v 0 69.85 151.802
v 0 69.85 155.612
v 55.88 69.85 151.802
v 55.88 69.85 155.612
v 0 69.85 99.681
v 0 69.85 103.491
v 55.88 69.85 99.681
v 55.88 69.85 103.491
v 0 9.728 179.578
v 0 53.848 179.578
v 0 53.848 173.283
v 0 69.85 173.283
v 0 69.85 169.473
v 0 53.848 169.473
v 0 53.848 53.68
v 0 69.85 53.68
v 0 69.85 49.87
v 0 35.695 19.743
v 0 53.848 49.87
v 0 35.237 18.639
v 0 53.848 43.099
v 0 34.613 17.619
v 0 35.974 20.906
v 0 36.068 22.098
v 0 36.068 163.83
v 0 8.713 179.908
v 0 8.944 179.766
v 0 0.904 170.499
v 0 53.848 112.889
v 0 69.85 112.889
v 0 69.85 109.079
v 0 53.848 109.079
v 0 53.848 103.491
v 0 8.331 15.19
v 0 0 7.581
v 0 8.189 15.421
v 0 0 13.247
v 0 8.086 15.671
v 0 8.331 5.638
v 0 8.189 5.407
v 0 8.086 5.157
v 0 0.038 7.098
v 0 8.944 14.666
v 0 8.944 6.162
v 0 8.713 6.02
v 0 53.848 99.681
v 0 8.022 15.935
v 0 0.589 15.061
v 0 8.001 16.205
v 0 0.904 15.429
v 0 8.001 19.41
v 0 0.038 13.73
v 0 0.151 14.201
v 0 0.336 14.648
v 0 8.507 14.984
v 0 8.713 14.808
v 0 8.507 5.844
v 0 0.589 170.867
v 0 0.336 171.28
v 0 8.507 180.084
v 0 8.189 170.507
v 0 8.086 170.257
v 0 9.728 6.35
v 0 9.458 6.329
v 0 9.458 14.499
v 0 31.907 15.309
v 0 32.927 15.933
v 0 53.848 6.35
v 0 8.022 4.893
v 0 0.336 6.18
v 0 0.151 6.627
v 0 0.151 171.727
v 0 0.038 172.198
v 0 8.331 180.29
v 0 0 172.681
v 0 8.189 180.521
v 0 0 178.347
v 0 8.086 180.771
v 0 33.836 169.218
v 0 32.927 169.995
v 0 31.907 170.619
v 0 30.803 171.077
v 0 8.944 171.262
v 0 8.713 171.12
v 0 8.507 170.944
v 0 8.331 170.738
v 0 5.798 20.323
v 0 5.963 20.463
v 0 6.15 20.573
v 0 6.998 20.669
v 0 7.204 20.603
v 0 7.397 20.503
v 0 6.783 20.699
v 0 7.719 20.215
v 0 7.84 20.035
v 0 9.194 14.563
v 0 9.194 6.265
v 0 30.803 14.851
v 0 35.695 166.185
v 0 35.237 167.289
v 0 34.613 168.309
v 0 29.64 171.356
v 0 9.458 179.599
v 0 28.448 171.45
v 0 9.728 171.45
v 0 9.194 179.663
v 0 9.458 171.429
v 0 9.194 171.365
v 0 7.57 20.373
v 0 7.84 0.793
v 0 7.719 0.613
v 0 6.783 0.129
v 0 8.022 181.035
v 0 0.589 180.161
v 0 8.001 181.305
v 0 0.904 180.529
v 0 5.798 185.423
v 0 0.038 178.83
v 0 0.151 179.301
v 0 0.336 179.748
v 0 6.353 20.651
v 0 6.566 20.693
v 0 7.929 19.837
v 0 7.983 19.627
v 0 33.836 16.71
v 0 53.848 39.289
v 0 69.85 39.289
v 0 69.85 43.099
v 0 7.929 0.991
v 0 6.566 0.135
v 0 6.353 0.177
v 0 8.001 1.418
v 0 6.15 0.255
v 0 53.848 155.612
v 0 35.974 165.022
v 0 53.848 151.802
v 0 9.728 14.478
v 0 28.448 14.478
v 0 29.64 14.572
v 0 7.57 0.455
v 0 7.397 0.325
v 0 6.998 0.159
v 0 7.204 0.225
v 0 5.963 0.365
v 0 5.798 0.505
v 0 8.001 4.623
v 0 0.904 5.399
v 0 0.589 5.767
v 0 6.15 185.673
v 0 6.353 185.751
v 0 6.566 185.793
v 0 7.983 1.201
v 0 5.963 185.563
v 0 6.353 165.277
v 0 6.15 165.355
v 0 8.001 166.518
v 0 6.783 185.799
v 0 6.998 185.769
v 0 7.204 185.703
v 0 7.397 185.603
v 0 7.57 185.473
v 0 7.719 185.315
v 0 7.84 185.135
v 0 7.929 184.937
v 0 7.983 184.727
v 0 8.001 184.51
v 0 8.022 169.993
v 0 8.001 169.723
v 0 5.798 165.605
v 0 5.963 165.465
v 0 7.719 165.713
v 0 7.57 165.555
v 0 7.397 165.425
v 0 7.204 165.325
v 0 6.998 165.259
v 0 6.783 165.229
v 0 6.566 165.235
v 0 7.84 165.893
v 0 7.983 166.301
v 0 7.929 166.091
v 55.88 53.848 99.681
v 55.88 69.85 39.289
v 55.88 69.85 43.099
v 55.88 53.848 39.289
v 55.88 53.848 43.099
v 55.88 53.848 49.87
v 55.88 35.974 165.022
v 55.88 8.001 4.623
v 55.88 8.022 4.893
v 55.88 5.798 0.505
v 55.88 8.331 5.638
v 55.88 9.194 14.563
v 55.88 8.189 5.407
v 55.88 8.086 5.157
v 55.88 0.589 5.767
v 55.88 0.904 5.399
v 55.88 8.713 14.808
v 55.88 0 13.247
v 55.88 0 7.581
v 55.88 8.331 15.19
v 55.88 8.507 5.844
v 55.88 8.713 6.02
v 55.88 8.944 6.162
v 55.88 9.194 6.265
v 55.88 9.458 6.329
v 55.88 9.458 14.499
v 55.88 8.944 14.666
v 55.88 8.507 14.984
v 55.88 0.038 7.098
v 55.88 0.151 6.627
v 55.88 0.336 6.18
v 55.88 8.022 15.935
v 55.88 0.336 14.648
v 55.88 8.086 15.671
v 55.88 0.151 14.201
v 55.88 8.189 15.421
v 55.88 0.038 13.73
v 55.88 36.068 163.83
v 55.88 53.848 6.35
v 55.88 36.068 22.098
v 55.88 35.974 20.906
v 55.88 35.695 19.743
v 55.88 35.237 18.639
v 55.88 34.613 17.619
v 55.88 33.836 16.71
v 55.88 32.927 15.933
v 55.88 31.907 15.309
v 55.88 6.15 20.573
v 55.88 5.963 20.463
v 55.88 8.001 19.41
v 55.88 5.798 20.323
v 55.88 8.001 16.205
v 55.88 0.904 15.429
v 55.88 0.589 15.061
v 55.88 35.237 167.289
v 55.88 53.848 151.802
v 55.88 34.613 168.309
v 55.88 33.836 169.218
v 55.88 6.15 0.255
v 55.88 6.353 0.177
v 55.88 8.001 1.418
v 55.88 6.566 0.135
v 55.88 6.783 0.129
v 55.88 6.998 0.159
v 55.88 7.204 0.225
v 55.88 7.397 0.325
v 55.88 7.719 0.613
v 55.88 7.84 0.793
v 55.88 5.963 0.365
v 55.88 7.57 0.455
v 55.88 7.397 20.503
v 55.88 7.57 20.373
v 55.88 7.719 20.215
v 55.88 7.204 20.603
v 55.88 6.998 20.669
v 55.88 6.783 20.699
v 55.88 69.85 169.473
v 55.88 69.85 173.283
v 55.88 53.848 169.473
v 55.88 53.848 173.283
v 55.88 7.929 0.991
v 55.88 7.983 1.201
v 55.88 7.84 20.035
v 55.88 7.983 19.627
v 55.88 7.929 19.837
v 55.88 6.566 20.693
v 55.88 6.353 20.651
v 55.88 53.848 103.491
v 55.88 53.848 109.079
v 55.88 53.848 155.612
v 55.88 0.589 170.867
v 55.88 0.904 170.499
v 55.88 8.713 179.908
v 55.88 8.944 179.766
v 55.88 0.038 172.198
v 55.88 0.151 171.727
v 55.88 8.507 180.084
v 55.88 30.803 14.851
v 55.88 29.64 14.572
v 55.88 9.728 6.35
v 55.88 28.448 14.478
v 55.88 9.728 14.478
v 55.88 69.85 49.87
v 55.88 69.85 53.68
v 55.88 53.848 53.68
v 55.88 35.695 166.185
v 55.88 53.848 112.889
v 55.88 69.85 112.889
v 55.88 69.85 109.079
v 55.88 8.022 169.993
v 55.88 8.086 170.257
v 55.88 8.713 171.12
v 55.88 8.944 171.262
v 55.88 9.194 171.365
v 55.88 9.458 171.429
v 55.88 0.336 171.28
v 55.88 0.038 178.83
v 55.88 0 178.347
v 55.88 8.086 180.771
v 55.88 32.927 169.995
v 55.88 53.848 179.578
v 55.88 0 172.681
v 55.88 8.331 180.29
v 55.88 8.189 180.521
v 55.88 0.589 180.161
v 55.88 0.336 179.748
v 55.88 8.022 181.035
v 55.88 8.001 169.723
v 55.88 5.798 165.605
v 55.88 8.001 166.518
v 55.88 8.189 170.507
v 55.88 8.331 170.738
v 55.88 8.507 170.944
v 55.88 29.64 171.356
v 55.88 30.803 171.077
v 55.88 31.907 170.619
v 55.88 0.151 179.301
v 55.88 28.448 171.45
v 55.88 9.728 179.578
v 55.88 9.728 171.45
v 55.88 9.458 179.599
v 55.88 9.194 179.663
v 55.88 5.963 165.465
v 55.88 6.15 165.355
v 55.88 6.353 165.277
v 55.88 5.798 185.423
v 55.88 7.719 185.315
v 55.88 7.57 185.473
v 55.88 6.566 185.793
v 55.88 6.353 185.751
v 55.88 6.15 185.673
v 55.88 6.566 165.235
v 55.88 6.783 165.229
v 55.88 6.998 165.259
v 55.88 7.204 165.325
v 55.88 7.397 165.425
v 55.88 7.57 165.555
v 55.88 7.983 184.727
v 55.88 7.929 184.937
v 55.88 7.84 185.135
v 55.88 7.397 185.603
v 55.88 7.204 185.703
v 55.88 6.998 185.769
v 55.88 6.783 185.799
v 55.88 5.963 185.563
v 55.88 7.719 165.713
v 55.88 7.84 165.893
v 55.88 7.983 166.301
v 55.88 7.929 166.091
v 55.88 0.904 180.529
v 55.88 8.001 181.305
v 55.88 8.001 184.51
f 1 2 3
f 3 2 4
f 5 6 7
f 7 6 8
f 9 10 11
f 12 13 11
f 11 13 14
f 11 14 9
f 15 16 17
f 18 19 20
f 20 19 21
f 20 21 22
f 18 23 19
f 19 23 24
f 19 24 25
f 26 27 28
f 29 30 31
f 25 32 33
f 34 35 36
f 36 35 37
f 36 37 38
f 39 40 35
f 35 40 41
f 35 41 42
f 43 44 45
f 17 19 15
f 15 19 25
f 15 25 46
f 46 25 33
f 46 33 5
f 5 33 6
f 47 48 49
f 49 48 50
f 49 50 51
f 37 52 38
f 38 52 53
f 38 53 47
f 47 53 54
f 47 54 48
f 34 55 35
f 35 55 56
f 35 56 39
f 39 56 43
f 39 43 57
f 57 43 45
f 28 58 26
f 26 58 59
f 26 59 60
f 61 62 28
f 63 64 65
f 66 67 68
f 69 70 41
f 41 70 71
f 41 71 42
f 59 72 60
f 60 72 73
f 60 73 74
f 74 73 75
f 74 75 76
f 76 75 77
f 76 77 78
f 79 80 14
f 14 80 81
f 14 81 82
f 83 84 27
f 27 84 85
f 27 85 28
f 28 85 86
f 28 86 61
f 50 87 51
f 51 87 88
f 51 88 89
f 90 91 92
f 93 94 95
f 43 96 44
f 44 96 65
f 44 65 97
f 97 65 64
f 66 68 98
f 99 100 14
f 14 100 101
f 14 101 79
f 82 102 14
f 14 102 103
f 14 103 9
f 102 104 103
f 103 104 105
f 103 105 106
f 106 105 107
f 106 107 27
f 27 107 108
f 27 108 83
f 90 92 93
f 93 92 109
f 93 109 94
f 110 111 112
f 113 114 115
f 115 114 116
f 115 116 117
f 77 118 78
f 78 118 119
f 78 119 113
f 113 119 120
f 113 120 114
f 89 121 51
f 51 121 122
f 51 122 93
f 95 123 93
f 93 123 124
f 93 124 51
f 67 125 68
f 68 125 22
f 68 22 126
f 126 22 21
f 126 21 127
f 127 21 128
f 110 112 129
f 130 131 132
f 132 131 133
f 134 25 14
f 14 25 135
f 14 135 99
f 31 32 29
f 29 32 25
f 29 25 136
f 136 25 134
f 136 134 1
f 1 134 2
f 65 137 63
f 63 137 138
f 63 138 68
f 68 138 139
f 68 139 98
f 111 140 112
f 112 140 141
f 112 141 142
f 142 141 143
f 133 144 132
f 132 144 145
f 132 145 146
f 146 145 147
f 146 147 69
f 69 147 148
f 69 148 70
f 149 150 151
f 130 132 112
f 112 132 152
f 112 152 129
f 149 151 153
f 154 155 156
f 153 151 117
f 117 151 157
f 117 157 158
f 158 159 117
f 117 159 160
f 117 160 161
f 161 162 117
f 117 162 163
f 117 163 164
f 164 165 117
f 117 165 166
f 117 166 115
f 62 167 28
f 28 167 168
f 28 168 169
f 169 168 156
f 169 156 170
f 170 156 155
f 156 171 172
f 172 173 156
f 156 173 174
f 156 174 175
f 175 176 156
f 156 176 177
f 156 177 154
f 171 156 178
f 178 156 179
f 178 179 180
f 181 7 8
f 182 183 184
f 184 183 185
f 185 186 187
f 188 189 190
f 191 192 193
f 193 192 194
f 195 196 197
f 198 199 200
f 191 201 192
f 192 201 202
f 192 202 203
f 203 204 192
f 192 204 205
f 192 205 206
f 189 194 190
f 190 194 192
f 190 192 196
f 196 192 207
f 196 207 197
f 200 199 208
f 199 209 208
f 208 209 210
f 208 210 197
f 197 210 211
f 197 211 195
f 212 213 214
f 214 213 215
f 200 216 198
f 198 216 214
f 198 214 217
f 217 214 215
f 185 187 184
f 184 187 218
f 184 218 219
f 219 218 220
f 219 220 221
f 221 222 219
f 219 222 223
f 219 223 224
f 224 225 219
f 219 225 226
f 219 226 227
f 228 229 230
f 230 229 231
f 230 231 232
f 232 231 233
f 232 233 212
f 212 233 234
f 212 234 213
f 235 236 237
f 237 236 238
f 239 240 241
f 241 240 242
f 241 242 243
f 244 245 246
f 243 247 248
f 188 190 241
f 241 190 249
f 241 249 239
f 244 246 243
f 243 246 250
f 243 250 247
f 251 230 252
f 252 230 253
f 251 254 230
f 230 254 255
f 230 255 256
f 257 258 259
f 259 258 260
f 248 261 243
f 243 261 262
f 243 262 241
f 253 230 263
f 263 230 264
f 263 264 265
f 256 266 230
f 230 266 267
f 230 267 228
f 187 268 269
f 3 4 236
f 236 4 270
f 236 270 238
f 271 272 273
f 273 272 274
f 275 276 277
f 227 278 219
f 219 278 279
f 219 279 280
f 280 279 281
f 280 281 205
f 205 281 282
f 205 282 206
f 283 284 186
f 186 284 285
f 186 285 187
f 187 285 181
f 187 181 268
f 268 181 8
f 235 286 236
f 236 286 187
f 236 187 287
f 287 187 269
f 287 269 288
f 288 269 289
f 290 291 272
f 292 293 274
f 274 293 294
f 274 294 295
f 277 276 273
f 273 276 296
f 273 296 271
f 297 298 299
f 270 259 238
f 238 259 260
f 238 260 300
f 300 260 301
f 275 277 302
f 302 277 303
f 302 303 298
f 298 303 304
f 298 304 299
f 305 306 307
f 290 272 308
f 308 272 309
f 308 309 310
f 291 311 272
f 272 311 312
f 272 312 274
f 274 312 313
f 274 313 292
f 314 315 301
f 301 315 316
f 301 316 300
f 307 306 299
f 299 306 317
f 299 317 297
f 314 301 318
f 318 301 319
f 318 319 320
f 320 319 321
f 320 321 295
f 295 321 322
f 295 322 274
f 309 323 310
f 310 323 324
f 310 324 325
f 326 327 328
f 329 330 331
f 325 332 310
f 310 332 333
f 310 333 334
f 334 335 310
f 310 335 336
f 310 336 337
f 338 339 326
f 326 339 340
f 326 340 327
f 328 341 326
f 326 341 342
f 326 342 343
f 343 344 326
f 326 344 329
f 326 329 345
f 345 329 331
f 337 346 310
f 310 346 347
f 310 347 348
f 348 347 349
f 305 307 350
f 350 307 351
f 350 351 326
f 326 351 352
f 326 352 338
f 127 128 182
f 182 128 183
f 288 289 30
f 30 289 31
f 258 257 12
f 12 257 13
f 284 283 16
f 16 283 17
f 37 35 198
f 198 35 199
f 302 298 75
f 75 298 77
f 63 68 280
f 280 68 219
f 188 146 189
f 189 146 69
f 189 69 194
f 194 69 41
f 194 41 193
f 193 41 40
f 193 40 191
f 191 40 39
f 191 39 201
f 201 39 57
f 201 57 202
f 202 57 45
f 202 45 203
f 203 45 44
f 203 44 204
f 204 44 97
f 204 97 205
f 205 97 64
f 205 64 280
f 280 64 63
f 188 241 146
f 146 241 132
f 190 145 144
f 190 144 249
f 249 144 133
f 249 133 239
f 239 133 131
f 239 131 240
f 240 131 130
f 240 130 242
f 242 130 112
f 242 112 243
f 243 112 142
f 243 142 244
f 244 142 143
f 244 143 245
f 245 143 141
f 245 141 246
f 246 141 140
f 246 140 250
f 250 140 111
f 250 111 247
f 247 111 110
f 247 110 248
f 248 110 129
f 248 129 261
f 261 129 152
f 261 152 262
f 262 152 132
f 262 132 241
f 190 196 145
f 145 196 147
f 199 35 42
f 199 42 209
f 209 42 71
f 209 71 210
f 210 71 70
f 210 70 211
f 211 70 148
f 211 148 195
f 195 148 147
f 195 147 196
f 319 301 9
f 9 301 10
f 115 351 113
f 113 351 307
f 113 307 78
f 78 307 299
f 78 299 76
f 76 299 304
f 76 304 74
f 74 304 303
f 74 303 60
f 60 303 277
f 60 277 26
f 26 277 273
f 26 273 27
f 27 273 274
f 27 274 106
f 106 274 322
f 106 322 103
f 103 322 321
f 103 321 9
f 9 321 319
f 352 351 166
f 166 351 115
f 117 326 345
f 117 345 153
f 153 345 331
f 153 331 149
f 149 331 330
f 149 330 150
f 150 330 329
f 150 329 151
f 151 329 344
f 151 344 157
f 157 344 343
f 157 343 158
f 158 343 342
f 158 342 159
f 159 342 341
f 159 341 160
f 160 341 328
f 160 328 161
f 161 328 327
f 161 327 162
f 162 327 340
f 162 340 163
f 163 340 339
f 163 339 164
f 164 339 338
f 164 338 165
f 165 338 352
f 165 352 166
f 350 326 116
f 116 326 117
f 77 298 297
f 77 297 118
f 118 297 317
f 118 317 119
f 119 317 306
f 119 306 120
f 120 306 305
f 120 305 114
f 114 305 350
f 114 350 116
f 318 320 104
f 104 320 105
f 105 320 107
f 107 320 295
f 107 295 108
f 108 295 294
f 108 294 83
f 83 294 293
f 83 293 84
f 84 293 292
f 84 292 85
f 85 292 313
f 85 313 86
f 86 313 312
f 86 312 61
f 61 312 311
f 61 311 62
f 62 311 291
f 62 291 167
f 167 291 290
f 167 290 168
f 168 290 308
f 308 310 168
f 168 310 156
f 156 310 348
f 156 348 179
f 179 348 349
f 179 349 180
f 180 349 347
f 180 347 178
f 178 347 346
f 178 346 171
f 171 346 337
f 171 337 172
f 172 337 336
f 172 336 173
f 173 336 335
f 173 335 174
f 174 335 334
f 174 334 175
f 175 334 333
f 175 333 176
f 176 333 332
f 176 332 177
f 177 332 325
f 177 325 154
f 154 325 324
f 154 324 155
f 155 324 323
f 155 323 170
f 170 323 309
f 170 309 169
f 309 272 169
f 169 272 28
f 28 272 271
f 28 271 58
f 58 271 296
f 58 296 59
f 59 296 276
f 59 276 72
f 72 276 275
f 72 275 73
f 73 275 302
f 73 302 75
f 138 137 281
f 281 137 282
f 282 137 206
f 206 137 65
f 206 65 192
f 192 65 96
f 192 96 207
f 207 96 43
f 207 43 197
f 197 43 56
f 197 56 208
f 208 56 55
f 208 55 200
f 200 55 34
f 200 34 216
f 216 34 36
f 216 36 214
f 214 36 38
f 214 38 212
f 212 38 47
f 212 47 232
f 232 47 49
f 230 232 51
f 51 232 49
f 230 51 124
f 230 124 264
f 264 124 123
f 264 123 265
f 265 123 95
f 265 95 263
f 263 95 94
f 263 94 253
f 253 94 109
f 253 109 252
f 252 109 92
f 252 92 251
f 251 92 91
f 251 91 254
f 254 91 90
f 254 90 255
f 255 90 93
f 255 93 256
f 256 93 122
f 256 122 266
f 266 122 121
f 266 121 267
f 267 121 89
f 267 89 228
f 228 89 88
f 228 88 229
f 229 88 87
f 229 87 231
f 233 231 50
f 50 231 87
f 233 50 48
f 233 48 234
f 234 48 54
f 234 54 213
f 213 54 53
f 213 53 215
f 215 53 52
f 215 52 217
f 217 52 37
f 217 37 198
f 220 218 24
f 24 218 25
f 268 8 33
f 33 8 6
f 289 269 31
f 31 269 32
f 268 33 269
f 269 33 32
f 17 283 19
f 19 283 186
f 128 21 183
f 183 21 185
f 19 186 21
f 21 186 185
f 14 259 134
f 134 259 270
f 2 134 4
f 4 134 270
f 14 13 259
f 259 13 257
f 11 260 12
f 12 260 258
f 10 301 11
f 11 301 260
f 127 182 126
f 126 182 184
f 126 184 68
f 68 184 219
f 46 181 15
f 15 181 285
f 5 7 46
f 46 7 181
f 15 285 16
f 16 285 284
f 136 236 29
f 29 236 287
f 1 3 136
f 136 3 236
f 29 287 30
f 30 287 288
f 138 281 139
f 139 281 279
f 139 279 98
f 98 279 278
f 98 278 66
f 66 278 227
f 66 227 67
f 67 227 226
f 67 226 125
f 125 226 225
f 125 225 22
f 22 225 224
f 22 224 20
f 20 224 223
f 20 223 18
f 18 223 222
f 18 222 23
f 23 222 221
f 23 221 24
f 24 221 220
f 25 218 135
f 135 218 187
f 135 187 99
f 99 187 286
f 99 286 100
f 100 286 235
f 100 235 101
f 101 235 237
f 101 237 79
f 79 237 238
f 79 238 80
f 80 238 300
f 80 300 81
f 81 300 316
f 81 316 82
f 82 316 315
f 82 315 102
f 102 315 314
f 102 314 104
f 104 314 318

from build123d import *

# Parameters (mm, degrees)
SKETCH1_W               = 55.88
SKETCH1_H               = 69.85
BOSS_EXTRUDE1_DEPTH     = 185.928
CAVITY2_DEPTH           = 55.88
CUT_EXTRUDE1_DEPTH      = 207.326968872
CUT_EXTRUDE1_DEPTH_BACK = 207.326968872
CAVITY3_START           = 155.611951918
CAVITY3_OUTLINE_W       = 55.88
CAVITY3_OUTLINE_H       = 16.002
CAVITY3_DEPTH           = 13.861518057
CAVITY3_START_2         = 43.09882965
CAVITY3_2_OUTLINE_W     = 55.88
CAVITY3_2_OUTLINE_H     = 16.002
CAVITY3_2_DEPTH         = 6.77134799
CAVITY3_START_3         = 103.490840018
CAVITY3_3_OUTLINE_W     = 55.88
CAVITY3_3_OUTLINE_H     = 16.002
CAVITY3_3_DEPTH         = 5.588
CUT_EXTRUDE2_DEPTH      = 207.326968872
CUT_EXTRUDE2_DEPTH_BACK = 207.326968872
SKETCH4_W               = 12.644530025
SKETCH4_H               = 16.002
SKETCH4_W_2             = 38.9131119
SKETCH4_W_3             = 46.000662378
SKETCH4_W_4             = 39.28882965
FILLET1_R               = 7.62


# Read off the part's stored shape, not the designer's step: Cavity2, Cavity3
with BuildPart() as part:
    # Sketch1 → Boss-Extrude1 (new body)
    with BuildSketch(Plane.XY):
        with Locations((27.94, 34.925)):
            Rectangle(SKETCH1_W, SKETCH1_H)
    extrude(amount=BOSS_EXTRUDE1_DEPTH)

    # Cavity2 outline → Cavity2 (cut)
    with BuildSketch(Plane.YZ):
        with BuildLine():
            Line((0, 185.372681959), (0, 178.347013566))
            ThreePointArc((0, 178.347013566), (0.234915375, 179.528012907), (0.903897763, 180.529215804))
            Line((0.903897763, 180.529215804), (5.797646215, 185.422964256))
            ThreePointArc((5.797646215, 185.422964256), (7.204232738, 185.702751711), (8.001, 184.510305235))
            Line((8.001, 184.510305235), (8.001, 181.3052))
            ThreePointArc((8.001, 181.3052), (8.506885168, 180.083885168), (9.7282, 179.578))
            Line((9.7282, 179.578), (10.3378, 179.578))
            ThreePointArc((10.3378, 179.578), (11.559114832, 180.083885168), (12.065, 181.3052))
            Line((12.065, 181.3052), (12.065, 182.478305235))
            ThreePointArc((12.065, 182.478305235), (11.049, 183.494305235), (12.065, 184.510305235))
            Line((12.065, 184.510305235), (12.065, 185.928))
            Line((12.065, 185.928), (0.555318041, 185.928))
            Line((0.555318041, 185.928), (0, 185.372681959))
        make_face()
        with BuildLine():
            Line((0, 160.528), (0, 156.668018354))
            ThreePointArc((0, 156.668018354), (1.097837867, 157.474813069), (2.011305235, 156.464))
            Line((2.011305235, 156.464), (6.738477062, 156.464))
            ThreePointArc((6.738477062, 156.464), (7.643464695, 157.473916954), (8.74621772, 156.684695417))
            ThreePointArc((8.74621772, 156.684695417), (10.673815789, 157.855184211), (11.844304583, 159.78278228))
            ThreePointArc((11.844304583, 159.78278228), (11.055083046, 160.885535305), (12.065, 161.790522938))
            Line((12.065, 161.790522938), (12.065, 166.517694765))
            ThreePointArc((12.065, 166.517694765), (11.049, 167.533694765), (12.065, 168.549694765))
            Line((12.065, 168.549694765), (12.065, 169.7228))
            ThreePointArc((12.065, 169.7228), (11.559114832, 170.944114832), (10.3378, 171.45))
            Line((10.3378, 171.45), (9.7282, 171.45))
            ThreePointArc((9.7282, 171.45), (8.506885168, 170.944114832), (8.001, 169.7228))
            Line((8.001, 169.7228), (8.001, 166.517694765))
            ThreePointArc((8.001, 166.517694765), (7.204232738, 165.325248289), (5.797646215, 165.605035744))
            Line((5.797646215, 165.605035744), (0.903897763, 170.498784196))
            ThreePointArc((0.903897763, 170.498784196), (0.234915375, 171.499987093), (0, 172.680986434))
            Line((0, 172.680986434), (0, 165.655318041))
            Line((0, 165.655318041), (2.923964256, 162.731353785))
            ThreePointArc((2.923964256, 162.731353785), (3.203751711, 161.324767262), (2.011305235, 160.528))
            Line((2.011305235, 160.528), (0, 160.528))
        make_face()
        with BuildLine():
            Line((0, 20.272681959), (0, 13.247013566))
            ThreePointArc((0, 13.247013566), (0.234915375, 14.428012907), (0.903897763, 15.429215804))
            Line((0.903897763, 15.429215804), (5.797646215, 20.322964256))
            ThreePointArc((5.797646215, 20.322964256), (7.204232738, 20.602751711), (8.001, 19.410305235))
            Line((8.001, 19.410305235), (8.001, 16.2052))
            ThreePointArc((8.001, 16.2052), (8.506885168, 14.983885168), (9.7282, 14.478))
            Line((9.7282, 14.478), (10.3378, 14.478))
            ThreePointArc((10.3378, 14.478), (11.559114832, 14.983885168), (12.065, 16.2052))
            Line((12.065, 16.2052), (12.065, 17.378305235))
            ThreePointArc((12.065, 17.378305235), (11.049, 18.394305235), (12.065, 19.410305235))
            Line((12.065, 19.410305235), (12.065, 24.137477062))
            ThreePointArc((12.065, 24.137477062), (11.055083046, 25.042464695), (11.844304583, 26.14521772))
            ThreePointArc((11.844304583, 26.14521772), (10.673815789, 28.072815789), (8.74621772, 29.243304583))
            ThreePointArc((8.74621772, 29.243304583), (7.643464695, 28.454083046), (6.738477062, 29.464))
            Line((6.738477062, 29.464), (2.011305235, 29.464))
            ThreePointArc((2.011305235, 29.464), (1.097837867, 28.453186931), (0, 29.259981646))
            Line((0, 29.259981646), (0, 25.4))
            Line((0, 25.4), (2.011305235, 25.4))
            ThreePointArc((2.011305235, 25.4), (3.203751711, 24.603232738), (2.923964256, 23.196646215))
            Line((2.923964256, 23.196646215), (0, 20.272681959))
        make_face()
        with BuildLine():
            Line((12.065, 0), (12.065, 1.417694765))
            ThreePointArc((12.065, 1.417694765), (11.049, 2.433694765), (12.065, 3.449694765))
            Line((12.065, 3.449694765), (12.065, 4.6228))
            ThreePointArc((12.065, 4.6228), (11.559114832, 5.844114832), (10.3378, 6.35))
            Line((10.3378, 6.35), (9.7282, 6.35))
            ThreePointArc((9.7282, 6.35), (8.506885168, 5.844114832), (8.001, 4.6228))
            Line((8.001, 4.6228), (8.001, 1.417694765))
            ThreePointArc((8.001, 1.417694765), (7.204232738, 0.225248289), (5.797646215, 0.505035744))
            Line((5.797646215, 0.505035744), (0.903897763, 5.398784196))
            ThreePointArc((0.903897763, 5.398784196), (0.234915375, 6.399987093), (0, 7.580986434))
            Line((0, 7.580986434), (0, 0.555318041))
            Line((0, 0.555318041), (0.555318041, 0))
            Line((0.555318041, 0), (12.065, 0))
        make_face()
    extrude(amount=CAVITY2_DEPTH, mode=Mode.SUBTRACT)

    # Sketch2 → Cut-Extrude1 (cut, two sides: drawn at the far end of the back side and taken through both)
    with BuildSketch(Plane(origin=(55.88, 0, 0), x_dir=(0, 0, -1), z_dir=(1, 0, 0)).offset(-CUT_EXTRUDE1_DEPTH_BACK)):
        Polygon((-185.928, 53.848), (-185.928, 12.065), (-187.786827766, 0), (-183.387405269, 0), (-186.368592882, 6.922214935), (-185.928, 7.695543501), (-179.578, 10.033), (-179.578, 53.848), align=None)
        Polygon((-171.45, 36.068), (-171.45, 10.033), (-163.181232022, 10.033), (-165.655318041, 0), (-20.272681959, 0), (-21.714355158, 8.498769389), (-14.478, 10.033), (-14.478, 36.068), align=None)
        Polygon((0.982362905, -0.670371441), (0, 12.065), (0, 53.848), (-6.35, 53.848), (-6.35, 10.033), (-1.572527278, 10.022034637), (0.234962195, 6.712117206), (-3.38001675, -0.670371441), align=None)
    extrude(amount=CUT_EXTRUDE1_DEPTH + CUT_EXTRUDE1_DEPTH_BACK, mode=Mode.SUBTRACT)

    # Cavity3 outline → Cavity3 (cut)
    with BuildSketch(Plane.XY.offset(CAVITY3_START)):
        with Locations((27.94, 61.849)):
            Rectangle(CAVITY3_OUTLINE_W, CAVITY3_OUTLINE_H)
    extrude(amount=CAVITY3_DEPTH, mode=Mode.SUBTRACT)

    # Cavity3 2 outline → Cavity3 2 (cut)
    with BuildSketch(Plane.XY.offset(CAVITY3_START_2)):
        with Locations((27.94, 61.849)):
            Rectangle(CAVITY3_2_OUTLINE_W, CAVITY3_2_OUTLINE_H)
    extrude(amount=CAVITY3_2_DEPTH, mode=Mode.SUBTRACT)

    # Cavity3 3 outline → Cavity3 3 (cut)
    with BuildSketch(Plane.XY.offset(CAVITY3_START_3)):
        with Locations((27.94, 61.849)):
            Rectangle(CAVITY3_3_OUTLINE_W, CAVITY3_3_OUTLINE_H)
    extrude(amount=CAVITY3_3_DEPTH, mode=Mode.SUBTRACT)

    # Sketch4 → Cut-Extrude2 (cut, two sides: drawn at the far end of the back side and taken through both)
    with BuildSketch(Plane(origin=(55.88, 0, 0), x_dir=(0, 0, -1), z_dir=(1, 0, 0)).offset(-CUT_EXTRUDE2_DEPTH_BACK)):
        with Locations((-179.605734987, 61.849)):
            Rectangle(SKETCH4_W, SKETCH4_H)
        with Locations((-132.345395968, 61.849)):
            Rectangle(SKETCH4_W_2, SKETCH4_H)
        with Locations((-76.680508829, 61.849)):
            Rectangle(SKETCH4_W_3, SKETCH4_H)
        with Locations((-19.644414825, 61.849)):
            Rectangle(SKETCH4_W_4, SKETCH4_H)
    extrude(amount=CUT_EXTRUDE2_DEPTH + CUT_EXTRUDE2_DEPTH_BACK, mode=Mode.SUBTRACT)

    # Fillet1
    fillet1_edges = [part.edges().sort_by_distance(p)[0] for p in [
        (27.94, 36.068, 14.478),
        (27.94, 36.068, 171.45),
    ]]
    fillet(fillet1_edges, radius=FILLET1_R)


solid = part.part
